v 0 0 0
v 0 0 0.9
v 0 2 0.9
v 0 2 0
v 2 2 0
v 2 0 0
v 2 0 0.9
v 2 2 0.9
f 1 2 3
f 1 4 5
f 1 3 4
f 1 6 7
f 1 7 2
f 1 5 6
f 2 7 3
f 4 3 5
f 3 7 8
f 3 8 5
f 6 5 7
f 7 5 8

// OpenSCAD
/* Warning, this is a very basic generator with a lot of approximation 
input data : [VDFN, JDA, 2x2x0.9mm, 6, , A, C04-01016A]
generated by com.zoubworld.electronics.cad.model3d.Basic
Date : Sun Feb 15 10:50:49 CET 2026
*/

//body
color("black")
translate([0,0,0])
cube([2.0,2.0,0.9], center=false);
